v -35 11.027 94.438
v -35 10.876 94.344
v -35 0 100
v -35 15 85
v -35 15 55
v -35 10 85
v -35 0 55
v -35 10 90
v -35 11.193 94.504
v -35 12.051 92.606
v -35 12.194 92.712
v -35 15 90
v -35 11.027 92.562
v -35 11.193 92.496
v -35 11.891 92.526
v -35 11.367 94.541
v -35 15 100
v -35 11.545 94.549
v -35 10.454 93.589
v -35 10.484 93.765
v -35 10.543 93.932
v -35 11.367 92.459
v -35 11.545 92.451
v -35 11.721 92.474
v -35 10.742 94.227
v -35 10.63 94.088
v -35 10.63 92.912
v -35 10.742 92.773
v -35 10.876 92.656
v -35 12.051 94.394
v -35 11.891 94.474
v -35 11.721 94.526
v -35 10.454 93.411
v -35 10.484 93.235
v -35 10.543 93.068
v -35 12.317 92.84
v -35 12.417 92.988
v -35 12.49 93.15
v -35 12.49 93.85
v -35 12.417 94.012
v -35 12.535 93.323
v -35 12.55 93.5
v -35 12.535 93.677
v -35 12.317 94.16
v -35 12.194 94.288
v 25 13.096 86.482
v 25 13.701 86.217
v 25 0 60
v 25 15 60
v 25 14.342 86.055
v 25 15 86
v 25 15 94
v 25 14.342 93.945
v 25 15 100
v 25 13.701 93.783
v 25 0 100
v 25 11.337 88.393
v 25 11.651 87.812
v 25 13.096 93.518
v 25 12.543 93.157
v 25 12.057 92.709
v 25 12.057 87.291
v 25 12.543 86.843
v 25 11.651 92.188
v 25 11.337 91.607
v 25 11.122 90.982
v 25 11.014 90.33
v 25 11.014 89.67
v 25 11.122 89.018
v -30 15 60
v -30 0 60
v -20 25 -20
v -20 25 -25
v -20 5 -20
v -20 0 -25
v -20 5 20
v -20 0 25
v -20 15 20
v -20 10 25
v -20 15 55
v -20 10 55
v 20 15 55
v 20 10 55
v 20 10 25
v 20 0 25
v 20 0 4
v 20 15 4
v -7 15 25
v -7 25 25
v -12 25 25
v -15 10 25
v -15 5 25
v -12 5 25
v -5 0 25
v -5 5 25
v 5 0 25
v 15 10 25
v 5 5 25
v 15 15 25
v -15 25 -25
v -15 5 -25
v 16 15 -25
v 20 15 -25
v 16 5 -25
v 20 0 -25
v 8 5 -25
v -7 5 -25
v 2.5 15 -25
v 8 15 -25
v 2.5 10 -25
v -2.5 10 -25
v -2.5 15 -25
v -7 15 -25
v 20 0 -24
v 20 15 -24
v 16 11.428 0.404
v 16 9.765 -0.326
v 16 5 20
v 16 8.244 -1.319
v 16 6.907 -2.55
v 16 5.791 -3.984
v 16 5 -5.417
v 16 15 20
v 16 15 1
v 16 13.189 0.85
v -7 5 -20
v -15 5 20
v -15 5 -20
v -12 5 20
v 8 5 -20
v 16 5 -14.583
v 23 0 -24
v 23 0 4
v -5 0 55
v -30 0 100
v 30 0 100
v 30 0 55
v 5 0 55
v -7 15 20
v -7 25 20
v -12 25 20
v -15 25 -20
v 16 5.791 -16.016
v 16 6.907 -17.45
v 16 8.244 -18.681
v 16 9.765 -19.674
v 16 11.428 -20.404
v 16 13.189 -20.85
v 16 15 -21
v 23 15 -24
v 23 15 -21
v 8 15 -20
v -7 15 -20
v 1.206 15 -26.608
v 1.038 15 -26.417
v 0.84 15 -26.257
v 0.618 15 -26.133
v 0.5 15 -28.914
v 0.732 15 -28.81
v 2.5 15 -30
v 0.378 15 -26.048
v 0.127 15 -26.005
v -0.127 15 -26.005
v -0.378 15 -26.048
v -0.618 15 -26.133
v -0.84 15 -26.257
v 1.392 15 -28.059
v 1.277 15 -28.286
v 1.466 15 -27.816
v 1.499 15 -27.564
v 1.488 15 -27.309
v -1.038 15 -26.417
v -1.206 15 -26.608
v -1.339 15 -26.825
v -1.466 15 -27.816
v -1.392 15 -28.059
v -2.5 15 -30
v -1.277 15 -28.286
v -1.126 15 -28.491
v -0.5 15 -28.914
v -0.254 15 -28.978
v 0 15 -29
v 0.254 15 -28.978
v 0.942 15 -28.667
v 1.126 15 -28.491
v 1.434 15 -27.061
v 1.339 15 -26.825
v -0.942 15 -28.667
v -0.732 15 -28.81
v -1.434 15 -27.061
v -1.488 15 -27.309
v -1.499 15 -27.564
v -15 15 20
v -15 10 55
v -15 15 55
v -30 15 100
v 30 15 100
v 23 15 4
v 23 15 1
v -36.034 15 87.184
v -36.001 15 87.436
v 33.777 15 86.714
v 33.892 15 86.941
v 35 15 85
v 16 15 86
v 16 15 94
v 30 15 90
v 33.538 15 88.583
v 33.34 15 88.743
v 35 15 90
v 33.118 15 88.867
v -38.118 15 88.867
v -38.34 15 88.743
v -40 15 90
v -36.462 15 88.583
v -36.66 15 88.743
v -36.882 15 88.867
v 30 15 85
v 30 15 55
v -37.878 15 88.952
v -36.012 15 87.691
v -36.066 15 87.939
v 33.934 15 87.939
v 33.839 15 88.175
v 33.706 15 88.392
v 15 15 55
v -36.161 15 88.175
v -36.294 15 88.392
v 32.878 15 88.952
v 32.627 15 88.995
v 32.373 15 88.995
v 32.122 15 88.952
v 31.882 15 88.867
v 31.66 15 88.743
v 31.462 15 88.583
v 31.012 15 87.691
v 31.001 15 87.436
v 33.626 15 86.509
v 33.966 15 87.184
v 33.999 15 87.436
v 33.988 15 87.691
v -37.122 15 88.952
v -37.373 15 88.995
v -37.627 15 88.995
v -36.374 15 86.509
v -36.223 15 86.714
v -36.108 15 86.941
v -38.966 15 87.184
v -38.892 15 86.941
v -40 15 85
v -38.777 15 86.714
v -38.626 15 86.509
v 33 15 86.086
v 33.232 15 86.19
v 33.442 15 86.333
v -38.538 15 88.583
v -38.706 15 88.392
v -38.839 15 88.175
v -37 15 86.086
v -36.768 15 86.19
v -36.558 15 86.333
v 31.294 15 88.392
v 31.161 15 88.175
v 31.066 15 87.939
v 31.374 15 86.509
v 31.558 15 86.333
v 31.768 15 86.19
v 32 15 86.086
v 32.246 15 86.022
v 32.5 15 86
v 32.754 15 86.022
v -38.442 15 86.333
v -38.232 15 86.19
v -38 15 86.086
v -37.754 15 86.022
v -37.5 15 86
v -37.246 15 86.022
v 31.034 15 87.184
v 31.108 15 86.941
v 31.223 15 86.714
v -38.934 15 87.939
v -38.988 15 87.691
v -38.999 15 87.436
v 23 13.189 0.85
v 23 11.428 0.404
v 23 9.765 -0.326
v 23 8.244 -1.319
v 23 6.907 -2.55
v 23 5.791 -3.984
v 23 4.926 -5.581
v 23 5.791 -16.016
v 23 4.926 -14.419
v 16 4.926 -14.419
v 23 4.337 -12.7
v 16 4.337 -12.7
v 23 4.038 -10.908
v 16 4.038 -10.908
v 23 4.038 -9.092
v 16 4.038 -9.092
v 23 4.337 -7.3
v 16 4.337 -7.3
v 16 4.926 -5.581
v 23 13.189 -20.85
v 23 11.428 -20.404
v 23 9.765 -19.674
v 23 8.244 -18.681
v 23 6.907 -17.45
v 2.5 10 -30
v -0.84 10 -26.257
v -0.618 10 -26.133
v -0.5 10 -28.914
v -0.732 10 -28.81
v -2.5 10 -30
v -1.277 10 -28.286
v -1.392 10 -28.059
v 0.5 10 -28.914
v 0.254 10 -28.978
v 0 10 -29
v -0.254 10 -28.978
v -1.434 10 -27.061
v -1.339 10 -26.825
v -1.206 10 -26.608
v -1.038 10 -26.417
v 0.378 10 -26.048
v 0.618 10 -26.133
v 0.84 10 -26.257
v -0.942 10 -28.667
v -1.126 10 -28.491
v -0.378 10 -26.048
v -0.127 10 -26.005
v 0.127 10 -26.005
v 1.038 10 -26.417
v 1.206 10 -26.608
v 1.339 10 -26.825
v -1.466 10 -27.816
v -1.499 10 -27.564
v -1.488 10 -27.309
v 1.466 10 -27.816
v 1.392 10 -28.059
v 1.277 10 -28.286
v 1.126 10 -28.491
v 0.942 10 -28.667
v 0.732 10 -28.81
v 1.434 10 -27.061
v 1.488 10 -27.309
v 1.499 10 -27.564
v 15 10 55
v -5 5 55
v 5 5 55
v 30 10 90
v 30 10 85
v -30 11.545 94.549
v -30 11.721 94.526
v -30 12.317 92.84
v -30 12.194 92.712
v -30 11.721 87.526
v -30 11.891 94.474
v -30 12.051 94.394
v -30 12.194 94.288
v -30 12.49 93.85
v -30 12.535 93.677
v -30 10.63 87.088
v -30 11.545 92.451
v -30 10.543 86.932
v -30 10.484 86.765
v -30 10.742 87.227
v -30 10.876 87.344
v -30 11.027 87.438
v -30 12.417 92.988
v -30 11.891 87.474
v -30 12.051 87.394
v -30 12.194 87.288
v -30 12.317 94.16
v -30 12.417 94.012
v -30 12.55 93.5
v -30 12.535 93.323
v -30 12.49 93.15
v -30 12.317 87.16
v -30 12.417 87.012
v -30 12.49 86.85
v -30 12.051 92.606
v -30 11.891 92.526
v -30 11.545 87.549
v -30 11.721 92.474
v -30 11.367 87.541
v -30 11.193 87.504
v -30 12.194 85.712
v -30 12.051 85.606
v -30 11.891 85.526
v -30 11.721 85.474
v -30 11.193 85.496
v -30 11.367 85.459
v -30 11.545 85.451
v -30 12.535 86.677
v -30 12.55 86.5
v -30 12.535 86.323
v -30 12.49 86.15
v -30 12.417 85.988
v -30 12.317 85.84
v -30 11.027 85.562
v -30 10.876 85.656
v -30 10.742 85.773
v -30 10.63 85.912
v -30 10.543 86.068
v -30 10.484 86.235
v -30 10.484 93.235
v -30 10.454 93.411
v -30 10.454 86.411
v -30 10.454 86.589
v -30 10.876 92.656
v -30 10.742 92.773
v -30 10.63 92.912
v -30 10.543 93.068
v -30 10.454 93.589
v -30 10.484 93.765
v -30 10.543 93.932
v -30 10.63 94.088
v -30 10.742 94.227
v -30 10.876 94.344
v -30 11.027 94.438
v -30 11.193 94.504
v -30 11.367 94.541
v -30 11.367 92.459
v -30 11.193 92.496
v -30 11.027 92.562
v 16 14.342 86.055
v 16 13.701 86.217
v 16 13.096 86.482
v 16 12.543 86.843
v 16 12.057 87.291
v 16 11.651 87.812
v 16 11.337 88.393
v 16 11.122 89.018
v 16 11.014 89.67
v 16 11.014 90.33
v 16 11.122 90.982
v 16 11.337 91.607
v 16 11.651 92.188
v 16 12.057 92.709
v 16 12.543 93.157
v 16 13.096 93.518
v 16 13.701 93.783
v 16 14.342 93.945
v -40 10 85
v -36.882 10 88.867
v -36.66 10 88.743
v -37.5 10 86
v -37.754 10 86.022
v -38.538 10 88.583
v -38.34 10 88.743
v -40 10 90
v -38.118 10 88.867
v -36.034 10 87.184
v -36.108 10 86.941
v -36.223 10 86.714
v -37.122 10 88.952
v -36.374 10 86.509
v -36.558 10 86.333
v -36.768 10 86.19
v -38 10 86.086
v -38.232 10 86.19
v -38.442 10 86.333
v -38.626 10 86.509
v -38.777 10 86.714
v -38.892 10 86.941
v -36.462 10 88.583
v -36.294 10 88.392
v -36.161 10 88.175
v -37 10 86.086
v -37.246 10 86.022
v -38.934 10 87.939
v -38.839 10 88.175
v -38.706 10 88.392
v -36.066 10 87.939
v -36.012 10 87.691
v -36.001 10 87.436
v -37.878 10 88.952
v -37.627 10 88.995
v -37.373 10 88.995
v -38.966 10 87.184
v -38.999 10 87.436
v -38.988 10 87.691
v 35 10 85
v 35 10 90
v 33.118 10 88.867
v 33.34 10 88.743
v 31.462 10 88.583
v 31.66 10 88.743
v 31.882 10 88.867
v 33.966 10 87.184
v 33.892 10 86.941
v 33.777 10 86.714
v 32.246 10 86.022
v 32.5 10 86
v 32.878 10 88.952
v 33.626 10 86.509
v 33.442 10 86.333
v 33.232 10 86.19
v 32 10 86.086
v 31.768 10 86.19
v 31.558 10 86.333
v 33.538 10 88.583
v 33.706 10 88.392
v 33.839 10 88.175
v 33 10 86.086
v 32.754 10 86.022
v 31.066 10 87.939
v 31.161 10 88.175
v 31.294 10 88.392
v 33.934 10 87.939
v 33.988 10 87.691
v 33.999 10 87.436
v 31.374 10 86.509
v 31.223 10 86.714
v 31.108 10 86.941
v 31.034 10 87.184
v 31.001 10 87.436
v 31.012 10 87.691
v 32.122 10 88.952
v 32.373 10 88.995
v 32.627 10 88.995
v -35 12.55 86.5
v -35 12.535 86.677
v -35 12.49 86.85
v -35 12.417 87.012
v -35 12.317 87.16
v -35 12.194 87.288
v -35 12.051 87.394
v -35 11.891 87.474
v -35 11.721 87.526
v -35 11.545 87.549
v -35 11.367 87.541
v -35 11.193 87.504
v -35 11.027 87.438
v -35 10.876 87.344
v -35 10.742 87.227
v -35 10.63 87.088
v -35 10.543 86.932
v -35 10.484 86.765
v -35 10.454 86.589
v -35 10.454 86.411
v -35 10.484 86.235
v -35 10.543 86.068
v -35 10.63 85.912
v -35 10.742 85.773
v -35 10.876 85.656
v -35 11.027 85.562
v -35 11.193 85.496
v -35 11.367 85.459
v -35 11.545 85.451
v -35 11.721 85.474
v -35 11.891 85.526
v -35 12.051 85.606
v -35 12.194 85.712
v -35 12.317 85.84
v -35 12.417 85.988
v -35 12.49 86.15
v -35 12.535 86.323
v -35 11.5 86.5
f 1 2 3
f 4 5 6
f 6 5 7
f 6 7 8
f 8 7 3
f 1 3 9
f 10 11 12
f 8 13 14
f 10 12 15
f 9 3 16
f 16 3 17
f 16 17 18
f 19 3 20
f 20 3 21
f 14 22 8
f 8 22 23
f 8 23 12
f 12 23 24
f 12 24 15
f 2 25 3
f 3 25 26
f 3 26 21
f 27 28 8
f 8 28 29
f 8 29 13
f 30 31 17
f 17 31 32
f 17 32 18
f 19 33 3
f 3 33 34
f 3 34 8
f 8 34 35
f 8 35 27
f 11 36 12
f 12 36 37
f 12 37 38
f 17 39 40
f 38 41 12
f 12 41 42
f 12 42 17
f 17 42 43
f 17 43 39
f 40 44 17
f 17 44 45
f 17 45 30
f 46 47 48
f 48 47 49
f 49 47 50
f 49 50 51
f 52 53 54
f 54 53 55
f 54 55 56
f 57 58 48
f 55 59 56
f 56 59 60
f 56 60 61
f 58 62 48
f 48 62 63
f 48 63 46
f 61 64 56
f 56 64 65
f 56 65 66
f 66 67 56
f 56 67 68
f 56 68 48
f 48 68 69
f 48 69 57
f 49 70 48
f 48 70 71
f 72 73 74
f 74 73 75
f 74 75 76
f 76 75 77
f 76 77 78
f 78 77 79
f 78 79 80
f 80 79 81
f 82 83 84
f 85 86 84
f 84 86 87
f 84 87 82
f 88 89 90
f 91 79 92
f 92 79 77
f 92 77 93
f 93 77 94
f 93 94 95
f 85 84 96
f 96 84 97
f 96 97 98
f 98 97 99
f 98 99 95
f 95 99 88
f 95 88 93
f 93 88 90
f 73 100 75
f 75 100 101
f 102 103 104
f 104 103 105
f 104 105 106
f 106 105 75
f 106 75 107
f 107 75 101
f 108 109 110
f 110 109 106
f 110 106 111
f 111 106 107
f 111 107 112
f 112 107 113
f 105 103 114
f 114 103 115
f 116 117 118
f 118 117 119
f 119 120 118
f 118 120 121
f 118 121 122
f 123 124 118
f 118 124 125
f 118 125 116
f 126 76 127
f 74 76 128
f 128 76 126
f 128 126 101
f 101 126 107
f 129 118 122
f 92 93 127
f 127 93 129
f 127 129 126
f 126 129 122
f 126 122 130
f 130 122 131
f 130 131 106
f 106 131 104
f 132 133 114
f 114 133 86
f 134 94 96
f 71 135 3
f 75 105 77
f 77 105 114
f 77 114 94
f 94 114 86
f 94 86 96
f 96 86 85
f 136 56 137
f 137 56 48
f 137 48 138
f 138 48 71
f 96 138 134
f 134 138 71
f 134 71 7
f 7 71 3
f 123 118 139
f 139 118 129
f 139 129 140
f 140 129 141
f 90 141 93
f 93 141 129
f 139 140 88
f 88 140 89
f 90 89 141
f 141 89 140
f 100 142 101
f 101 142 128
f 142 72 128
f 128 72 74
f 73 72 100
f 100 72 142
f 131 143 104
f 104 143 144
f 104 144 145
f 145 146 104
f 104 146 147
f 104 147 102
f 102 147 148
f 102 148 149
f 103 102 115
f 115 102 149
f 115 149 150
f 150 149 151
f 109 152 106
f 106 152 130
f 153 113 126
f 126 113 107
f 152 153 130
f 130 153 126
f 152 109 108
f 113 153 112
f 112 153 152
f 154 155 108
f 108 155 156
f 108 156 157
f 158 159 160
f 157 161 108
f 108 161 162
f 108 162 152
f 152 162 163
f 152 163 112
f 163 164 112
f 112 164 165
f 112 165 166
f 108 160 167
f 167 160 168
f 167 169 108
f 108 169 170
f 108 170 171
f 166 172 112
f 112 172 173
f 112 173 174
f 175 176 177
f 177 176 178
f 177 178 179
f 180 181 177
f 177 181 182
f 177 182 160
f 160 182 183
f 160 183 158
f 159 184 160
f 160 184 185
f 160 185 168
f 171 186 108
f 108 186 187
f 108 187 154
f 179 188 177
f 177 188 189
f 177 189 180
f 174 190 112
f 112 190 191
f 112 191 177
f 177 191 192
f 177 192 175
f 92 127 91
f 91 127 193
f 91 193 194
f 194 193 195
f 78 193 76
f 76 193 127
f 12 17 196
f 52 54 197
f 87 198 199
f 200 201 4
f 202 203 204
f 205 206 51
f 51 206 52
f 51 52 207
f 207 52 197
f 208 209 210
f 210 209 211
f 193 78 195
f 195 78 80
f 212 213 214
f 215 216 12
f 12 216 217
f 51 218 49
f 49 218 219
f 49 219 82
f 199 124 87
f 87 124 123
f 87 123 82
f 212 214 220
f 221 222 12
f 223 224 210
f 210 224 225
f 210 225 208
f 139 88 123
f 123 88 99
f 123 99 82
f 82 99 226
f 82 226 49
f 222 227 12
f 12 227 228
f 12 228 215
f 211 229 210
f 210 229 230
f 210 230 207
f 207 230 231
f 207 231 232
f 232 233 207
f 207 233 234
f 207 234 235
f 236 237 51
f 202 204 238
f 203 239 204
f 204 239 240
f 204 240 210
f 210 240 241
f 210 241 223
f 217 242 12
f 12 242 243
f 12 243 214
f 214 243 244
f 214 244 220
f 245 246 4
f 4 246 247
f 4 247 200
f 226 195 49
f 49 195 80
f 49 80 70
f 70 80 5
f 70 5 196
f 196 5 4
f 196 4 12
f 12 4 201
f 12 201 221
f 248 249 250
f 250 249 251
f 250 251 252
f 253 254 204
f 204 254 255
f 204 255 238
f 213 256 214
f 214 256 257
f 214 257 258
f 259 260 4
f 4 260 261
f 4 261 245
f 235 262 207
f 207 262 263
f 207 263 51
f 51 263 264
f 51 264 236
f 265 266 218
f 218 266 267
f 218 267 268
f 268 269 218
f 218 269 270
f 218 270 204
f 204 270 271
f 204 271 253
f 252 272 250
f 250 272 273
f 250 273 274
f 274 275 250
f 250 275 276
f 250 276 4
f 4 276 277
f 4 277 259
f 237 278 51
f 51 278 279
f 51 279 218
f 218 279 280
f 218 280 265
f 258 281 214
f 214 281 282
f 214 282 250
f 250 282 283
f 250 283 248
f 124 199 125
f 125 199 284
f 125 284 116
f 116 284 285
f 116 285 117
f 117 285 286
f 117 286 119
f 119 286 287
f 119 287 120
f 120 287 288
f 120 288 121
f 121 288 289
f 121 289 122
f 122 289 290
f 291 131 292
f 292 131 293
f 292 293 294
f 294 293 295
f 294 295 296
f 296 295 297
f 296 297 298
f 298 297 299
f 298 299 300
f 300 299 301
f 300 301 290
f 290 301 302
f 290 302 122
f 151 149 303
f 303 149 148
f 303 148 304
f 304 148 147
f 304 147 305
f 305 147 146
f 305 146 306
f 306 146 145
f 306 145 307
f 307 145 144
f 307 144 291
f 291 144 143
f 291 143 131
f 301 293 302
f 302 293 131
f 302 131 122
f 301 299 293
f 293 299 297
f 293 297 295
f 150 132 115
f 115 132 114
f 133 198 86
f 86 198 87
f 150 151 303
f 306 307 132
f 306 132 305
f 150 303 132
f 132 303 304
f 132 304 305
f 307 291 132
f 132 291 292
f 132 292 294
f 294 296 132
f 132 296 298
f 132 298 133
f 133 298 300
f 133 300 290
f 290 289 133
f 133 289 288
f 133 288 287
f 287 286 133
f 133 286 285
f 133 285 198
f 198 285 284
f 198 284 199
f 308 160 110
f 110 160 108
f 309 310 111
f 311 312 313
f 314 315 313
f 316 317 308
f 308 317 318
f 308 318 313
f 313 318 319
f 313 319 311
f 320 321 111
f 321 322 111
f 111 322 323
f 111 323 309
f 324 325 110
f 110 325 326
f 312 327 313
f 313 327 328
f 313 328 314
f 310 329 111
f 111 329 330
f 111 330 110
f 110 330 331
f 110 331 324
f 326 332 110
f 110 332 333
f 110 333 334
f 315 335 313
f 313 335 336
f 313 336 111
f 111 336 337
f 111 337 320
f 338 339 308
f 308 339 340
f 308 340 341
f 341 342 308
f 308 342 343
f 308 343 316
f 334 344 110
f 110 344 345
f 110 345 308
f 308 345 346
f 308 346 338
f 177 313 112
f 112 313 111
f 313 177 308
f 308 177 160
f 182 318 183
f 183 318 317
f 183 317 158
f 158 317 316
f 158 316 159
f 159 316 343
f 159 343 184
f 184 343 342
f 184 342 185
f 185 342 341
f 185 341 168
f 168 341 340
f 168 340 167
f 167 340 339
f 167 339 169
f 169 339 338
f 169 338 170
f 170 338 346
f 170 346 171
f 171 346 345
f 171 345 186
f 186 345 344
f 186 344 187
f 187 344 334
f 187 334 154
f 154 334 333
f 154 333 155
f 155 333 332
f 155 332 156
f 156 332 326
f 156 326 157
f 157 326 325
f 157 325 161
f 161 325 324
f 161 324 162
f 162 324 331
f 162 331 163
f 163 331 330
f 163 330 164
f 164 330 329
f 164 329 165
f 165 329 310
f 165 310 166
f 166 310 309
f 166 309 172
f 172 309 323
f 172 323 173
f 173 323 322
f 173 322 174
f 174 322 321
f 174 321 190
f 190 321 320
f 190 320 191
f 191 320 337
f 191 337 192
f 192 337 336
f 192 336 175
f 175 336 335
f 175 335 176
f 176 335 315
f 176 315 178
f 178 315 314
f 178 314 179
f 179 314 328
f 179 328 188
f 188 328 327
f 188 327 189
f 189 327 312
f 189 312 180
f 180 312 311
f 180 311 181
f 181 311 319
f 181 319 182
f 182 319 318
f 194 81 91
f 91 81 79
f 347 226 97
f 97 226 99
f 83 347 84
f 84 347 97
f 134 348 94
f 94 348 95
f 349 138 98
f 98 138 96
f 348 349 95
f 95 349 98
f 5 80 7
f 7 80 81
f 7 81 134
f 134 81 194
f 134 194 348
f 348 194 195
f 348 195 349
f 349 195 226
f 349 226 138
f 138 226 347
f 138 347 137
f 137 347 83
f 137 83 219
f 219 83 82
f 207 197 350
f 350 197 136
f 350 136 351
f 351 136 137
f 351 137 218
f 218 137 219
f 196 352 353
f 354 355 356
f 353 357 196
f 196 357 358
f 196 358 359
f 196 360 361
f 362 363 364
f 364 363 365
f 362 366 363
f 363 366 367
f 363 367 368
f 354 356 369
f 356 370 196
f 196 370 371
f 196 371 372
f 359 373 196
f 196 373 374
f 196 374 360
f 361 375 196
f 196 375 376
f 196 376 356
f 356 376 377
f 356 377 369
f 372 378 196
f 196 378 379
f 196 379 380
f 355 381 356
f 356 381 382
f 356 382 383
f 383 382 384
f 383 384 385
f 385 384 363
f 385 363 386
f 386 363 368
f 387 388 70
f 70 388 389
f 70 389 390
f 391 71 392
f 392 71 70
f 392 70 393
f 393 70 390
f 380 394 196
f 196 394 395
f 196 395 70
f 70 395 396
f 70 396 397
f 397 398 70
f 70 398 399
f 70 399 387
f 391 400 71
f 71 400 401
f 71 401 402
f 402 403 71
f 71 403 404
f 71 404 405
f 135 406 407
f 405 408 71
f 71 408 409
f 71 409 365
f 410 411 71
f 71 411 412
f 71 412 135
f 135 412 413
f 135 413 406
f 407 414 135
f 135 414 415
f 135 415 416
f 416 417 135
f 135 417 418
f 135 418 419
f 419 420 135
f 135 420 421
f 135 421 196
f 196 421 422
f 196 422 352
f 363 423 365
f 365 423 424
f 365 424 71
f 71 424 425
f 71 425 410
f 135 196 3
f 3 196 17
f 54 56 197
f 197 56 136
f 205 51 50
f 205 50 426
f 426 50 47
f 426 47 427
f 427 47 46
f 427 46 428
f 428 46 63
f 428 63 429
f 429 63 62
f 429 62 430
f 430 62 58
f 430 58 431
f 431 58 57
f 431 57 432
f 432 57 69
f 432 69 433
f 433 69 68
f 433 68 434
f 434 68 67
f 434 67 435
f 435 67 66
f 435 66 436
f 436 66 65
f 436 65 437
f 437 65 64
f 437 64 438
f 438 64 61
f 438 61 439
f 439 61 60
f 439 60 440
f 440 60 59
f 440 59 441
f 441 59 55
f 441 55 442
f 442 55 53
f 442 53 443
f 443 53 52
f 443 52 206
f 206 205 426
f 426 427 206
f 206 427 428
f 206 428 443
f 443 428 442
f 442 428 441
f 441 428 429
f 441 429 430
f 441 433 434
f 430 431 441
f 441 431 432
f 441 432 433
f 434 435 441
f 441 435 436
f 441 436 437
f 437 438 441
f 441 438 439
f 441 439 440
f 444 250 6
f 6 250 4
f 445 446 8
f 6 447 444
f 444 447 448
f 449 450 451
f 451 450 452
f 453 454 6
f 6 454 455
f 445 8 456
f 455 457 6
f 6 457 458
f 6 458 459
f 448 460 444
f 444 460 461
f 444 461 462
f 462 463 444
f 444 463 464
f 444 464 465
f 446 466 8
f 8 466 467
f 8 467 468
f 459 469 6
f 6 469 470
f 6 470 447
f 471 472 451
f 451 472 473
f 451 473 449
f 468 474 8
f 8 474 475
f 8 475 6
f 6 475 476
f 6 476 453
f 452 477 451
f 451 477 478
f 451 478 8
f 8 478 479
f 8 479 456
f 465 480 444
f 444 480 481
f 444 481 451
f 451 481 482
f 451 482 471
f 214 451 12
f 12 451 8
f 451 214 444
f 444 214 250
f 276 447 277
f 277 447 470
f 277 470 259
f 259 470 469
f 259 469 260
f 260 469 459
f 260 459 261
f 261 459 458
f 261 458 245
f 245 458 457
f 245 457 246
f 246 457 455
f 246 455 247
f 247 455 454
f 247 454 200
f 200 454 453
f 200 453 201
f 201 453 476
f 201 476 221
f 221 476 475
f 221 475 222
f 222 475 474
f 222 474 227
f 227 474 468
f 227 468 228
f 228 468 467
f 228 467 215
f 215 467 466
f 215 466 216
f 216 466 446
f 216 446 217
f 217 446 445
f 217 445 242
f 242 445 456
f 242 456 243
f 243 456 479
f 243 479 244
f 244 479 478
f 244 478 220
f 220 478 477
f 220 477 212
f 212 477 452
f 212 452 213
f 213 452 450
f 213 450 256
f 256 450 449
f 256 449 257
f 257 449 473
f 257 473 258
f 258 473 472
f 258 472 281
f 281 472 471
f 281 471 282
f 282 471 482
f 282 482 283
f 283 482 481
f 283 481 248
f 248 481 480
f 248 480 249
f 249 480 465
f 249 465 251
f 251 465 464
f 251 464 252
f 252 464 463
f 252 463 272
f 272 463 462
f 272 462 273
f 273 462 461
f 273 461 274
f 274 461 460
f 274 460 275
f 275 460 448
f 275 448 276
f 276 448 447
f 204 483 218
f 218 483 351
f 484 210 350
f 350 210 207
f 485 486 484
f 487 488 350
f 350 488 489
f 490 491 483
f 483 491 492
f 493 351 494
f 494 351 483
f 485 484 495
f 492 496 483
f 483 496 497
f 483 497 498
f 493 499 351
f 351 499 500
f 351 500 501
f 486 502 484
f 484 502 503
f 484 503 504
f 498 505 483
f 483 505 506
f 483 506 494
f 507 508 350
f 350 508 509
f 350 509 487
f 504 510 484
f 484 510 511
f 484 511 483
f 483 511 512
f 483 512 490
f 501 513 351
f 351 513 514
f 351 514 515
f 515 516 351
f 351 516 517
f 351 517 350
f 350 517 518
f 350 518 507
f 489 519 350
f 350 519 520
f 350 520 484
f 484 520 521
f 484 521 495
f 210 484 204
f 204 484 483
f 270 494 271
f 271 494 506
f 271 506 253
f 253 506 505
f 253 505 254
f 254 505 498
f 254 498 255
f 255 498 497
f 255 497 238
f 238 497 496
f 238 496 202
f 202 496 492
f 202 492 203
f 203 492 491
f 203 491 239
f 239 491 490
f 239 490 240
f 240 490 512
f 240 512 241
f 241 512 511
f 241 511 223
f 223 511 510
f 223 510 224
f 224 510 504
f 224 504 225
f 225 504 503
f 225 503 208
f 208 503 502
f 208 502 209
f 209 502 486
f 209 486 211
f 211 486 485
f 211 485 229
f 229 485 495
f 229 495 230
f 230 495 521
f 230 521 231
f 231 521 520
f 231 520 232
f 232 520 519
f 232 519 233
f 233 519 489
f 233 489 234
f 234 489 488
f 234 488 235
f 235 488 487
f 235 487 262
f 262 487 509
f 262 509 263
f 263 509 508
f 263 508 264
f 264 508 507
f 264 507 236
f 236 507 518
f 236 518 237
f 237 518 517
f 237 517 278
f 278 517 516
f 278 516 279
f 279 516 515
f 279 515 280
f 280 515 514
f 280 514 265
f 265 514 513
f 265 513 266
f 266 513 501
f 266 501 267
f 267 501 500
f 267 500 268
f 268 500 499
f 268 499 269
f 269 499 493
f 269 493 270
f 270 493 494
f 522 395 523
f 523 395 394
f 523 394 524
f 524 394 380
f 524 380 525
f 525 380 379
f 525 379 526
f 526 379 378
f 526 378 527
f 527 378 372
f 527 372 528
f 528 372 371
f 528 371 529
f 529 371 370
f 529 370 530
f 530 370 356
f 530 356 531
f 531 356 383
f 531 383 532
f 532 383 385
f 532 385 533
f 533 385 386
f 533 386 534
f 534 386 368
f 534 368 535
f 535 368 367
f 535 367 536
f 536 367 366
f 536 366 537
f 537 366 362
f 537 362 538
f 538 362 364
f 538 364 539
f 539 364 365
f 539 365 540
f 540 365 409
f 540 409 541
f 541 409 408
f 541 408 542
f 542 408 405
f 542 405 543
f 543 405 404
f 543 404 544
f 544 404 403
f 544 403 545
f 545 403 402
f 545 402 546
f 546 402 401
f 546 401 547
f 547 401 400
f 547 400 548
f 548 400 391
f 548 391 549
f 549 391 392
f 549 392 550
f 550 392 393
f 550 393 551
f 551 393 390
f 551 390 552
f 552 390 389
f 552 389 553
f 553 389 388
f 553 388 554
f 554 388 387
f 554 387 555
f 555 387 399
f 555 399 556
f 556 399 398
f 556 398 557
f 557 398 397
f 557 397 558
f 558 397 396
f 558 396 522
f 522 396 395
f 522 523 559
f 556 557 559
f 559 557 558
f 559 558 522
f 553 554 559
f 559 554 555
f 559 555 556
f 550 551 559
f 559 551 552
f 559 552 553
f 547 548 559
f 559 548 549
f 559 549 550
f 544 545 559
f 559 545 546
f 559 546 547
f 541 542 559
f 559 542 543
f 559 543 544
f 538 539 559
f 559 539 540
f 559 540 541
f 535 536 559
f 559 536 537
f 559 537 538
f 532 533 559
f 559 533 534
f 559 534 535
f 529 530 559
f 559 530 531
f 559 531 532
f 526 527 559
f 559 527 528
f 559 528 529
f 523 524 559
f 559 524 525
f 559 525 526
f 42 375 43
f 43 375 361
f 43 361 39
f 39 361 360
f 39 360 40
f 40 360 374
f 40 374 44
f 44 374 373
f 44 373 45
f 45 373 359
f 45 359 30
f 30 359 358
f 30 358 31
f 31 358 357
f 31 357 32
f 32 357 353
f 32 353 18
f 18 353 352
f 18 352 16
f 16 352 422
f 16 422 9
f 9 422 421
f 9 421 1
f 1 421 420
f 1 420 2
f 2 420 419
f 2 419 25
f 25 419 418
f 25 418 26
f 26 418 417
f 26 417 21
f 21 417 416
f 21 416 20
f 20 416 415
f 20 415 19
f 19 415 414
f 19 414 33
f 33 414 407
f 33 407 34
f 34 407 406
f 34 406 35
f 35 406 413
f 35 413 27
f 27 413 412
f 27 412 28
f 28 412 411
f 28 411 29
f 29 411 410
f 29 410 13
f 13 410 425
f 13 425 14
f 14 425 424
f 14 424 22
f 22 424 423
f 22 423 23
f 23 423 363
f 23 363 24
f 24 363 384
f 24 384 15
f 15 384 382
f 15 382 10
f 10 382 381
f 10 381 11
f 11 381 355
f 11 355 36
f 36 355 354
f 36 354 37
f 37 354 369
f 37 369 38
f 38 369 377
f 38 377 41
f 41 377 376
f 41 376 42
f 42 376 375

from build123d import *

# Parameters (mm, degrees)
SKETCH1_W            = 40
SKETCH1_H            = 50
BOSS_EXTRUDE1_DEPTH  = 5
SKETCH4_W            = 5
SKETCH4_H            = 5
BOSS_EXTRUDE4_DEPTH  = 20
SKETCH4_4_W          = 5
SKETCH4_4_H          = 5
SKETCH4_4_W_2        = 15
BOSS_EXTRUDE5_DEPTH  = 10
CUT_EXTRUDE2_DEPTH   = 4
BOSS_EXTRUDE7_START  = 3
BOSS_EXTRUDE7_DEPTH  = 3
SKETCH10_W           = 5
SKETCH10_H           = 5
BOSS_EXTRUDE9_DEPTH  = 5
SKETCH11_R           = 1.5
CUT_EXTRUDE3_DEPTH   = 5
SKETCH12_W           = 5
SKETCH12_H           = 5
SKETCH12_W_2         = 10
BOSS_EXTRUDE10_DEPTH = 30
SKETCH13_W           = 40
SKETCH13_H           = 15
BOSS_EXTRUDE11_DEPTH = 5
SKETCH14_W           = 5
SKETCH14_H           = 15
BOSS_EXTRUDE12_DEPTH = 10
SKETCH15_W           = 5
SKETCH15_H           = 15
BOSS_EXTRUDE13_DEPTH = 15
SKETCH16_W           = 5
SKETCH16_H           = 15
BOSS_EXTRUDE14_DEPTH = 40
BOSS_EXTRUDE15_DEPTH = 9
SKETCH18_W           = 5
SKETCH18_H           = 5
BOSS_EXTRUDE16_DEPTH = 5
SKETCH19_R           = 1.5
CUT_EXTRUDE4_DEPTH   = 5
SKETCH20_W           = 5
SKETCH20_H           = 5
BOSS_EXTRUDE17_DEPTH = 5
SKETCH21_R           = 1.5
CUT_EXTRUDE5_DEPTH   = 5
SKETCH24_R           = 1.05
CUT_EXTRUDE6_DEPTH   = 5


with BuildPart() as part:
    # Sketch1 → Boss-Extrude1 (new body)
    with BuildSketch(Plane(origin=(0, 0, 0), x_dir=(1, 0, 0), z_dir=(0, 1, 0))):
        Rectangle(SKETCH1_W, SKETCH1_H)
    extrude(amount=BOSS_EXTRUDE1_DEPTH)

    # Sketch4 → Boss-Extrude4 (add)
    with BuildSketch(Plane(origin=(0, 5, 0), x_dir=(1, 0, 0), z_dir=(0, 1, 0))):
        with Locations((-9.5, -22.5)):
            Rectangle(SKETCH4_W, SKETCH4_H)
        with Locations((-17.5, 22.5)):
            Rectangle(SKETCH4_W, SKETCH4_H)
    extrude(amount=BOSS_EXTRUDE4_DEPTH)

    # Sketch4<4> → Boss-Extrude5 (add)
    with BuildSketch(Plane(origin=(0, 5, 0), x_dir=(1, 0, 0), z_dir=(0, 1, 0))):
        Polygon((20, -25), (20, 25), (16, 25), (16, -20), (-7, -20), (-7, -25), align=None)
        with Locations((-17.5, -22.5)):
            Rectangle(SKETCH4_4_W, SKETCH4_4_H)
        with Locations((0.5, 22.5)):
            Rectangle(SKETCH4_4_W_2, SKETCH4_4_H)
    extrude(amount=BOSS_EXTRUDE5_DEPTH)

    # Sketch7 → Cut-Extrude2 (cut)
    with BuildSketch(Plane(origin=(20, 0, 0), x_dir=(0, 0, -1), z_dir=(1, 0, 0))):
        with BuildLine():
            Line((-1, 15), (21, 15))
            ThreePointArc((21, 15), (10, 4), (-1, 15))
        make_face()
    extrude(amount=-CUT_EXTRUDE2_DEPTH, mode=Mode.SUBTRACT)

    # Sketch8 → Boss-Extrude7 (add)
    with BuildSketch(Plane(origin=(20, 0, 0), x_dir=(0, 0, -1), z_dir=(1, 0, 0)).offset(BOSS_EXTRUDE7_START)):
        with BuildLine():
            Line((-1, 15), (-4, 15))
            Line((-4, 15), (-4, 0))
            Line((-4, 0), (24, 0))
            Line((24, 0), (24, 15))
            Line((24, 15), (21, 15))
            ThreePointArc((21, 15), (10, 4), (-1, 15))
        make_face()
    extrude(amount=-BOSS_EXTRUDE7_DEPTH)

    # Sketch10 → Boss-Extrude9 (add)
    with BuildSketch(Plane(origin=(0, 0, -25), x_dir=(-1, 0, 0), z_dir=(0, 0, -1))):
        with Locations((0, 12.5)):
            Rectangle(SKETCH10_W, SKETCH10_H)
    extrude(amount=BOSS_EXTRUDE9_DEPTH)

    # Sketch11 → Cut-Extrude3 (cut)
    with BuildSketch(Plane.XZ.offset(-10)):
        with Locations((0, -27.5)):
            Circle(SKETCH11_R)
    extrude(amount=-CUT_EXTRUDE3_DEPTH, mode=Mode.SUBTRACT)

    # Sketch12 → Boss-Extrude10 (add)
    with BuildSketch(Plane.XY.offset(25)):
        with Locations((-17.5, 12.5)):
            Rectangle(SKETCH12_W, SKETCH12_H)
        with Locations((17.5, 12.5)):
            Rectangle(SKETCH12_W, SKETCH12_H)
        with Locations((0, 2.5)):
            Rectangle(SKETCH12_W_2, SKETCH12_H)
    extrude(amount=BOSS_EXTRUDE10_DEPTH)

    # Sketch13 → Boss-Extrude11 (add)
    with BuildSketch(Plane.XY.offset(55)):
        with Locations((0, 7.5)):
            Rectangle(SKETCH13_W, SKETCH13_H)
    extrude(amount=BOSS_EXTRUDE11_DEPTH)

    # Sketch14 → Boss-Extrude12 (add)
    with BuildSketch(Plane(origin=(20, 0, 0), x_dir=(0, 0, -1), z_dir=(1, 0, 0))):
        with Locations((-57.5, 7.5)):
            Rectangle(SKETCH14_W, SKETCH14_H)
    extrude(amount=BOSS_EXTRUDE12_DEPTH)

    # Sketch15 → Boss-Extrude13 (add)
    with BuildSketch(Plane.ZY.offset(20)):
        with Locations((57.5, 7.5)):
            Rectangle(SKETCH15_W, SKETCH15_H)
    extrude(amount=BOSS_EXTRUDE13_DEPTH)

    # Sketch16 → Boss-Extrude14 (add)
    with BuildSketch(Plane.XY.offset(60)):
        with Locations((-32.5, 7.5)):
            Rectangle(SKETCH16_W, SKETCH16_H)
        with Locations((27.5, 7.5)):
            Rectangle(SKETCH16_W, SKETCH16_H)
    extrude(amount=BOSS_EXTRUDE14_DEPTH)

    # Sketch17 → Boss-Extrude15 (add)
    with BuildSketch(Plane.ZY.offset(-25)):
        with BuildLine():
            Line((86, 15), (94, 15))
            ThreePointArc((94, 15), (90, 11), (86, 15))
        make_face()
    extrude(amount=BOSS_EXTRUDE15_DEPTH)

    # Sketch18 → Boss-Extrude16 (add)
    with BuildSketch(Plane.ZY.offset(35)):
        with Locations((87.5, 12.5)):
            Rectangle(SKETCH18_W, SKETCH18_H)
    extrude(amount=BOSS_EXTRUDE16_DEPTH)

    # Sketch19 → Cut-Extrude4 (cut)
    with BuildSketch(Plane.XZ.offset(-10)):
        with Locations((-37.5, 87.5)):
            Circle(SKETCH19_R)
    extrude(amount=-CUT_EXTRUDE4_DEPTH, mode=Mode.SUBTRACT)

    # Sketch20 → Boss-Extrude17 (add)
    with BuildSketch(Plane(origin=(30, 0, 0), x_dir=(0, 0, -1), z_dir=(1, 0, 0))):
        with Locations((-87.5, 12.5)):
            Rectangle(SKETCH20_W, SKETCH20_H)
    extrude(amount=BOSS_EXTRUDE17_DEPTH)

    # Sketch21 → Cut-Extrude5 (cut)
    with BuildSketch(Plane.XZ.offset(-10)):
        with Locations((32.5, 87.5)):
            Circle(SKETCH21_R)
    extrude(amount=-CUT_EXTRUDE5_DEPTH, mode=Mode.SUBTRACT)

    # Sketch24 → Cut-Extrude6 (cut)
    with BuildSketch(Plane(origin=(-30, 0, 0), x_dir=(0, 0, -1), z_dir=(1, 0, 0))):
        with Locations((-93.5, 11.5)):
            Circle(SKETCH24_R)
        with Locations((-86.5, 11.5)):
            Circle(SKETCH24_R)
    extrude(amount=-CUT_EXTRUDE6_DEPTH, mode=Mode.SUBTRACT)


solid = part.part
